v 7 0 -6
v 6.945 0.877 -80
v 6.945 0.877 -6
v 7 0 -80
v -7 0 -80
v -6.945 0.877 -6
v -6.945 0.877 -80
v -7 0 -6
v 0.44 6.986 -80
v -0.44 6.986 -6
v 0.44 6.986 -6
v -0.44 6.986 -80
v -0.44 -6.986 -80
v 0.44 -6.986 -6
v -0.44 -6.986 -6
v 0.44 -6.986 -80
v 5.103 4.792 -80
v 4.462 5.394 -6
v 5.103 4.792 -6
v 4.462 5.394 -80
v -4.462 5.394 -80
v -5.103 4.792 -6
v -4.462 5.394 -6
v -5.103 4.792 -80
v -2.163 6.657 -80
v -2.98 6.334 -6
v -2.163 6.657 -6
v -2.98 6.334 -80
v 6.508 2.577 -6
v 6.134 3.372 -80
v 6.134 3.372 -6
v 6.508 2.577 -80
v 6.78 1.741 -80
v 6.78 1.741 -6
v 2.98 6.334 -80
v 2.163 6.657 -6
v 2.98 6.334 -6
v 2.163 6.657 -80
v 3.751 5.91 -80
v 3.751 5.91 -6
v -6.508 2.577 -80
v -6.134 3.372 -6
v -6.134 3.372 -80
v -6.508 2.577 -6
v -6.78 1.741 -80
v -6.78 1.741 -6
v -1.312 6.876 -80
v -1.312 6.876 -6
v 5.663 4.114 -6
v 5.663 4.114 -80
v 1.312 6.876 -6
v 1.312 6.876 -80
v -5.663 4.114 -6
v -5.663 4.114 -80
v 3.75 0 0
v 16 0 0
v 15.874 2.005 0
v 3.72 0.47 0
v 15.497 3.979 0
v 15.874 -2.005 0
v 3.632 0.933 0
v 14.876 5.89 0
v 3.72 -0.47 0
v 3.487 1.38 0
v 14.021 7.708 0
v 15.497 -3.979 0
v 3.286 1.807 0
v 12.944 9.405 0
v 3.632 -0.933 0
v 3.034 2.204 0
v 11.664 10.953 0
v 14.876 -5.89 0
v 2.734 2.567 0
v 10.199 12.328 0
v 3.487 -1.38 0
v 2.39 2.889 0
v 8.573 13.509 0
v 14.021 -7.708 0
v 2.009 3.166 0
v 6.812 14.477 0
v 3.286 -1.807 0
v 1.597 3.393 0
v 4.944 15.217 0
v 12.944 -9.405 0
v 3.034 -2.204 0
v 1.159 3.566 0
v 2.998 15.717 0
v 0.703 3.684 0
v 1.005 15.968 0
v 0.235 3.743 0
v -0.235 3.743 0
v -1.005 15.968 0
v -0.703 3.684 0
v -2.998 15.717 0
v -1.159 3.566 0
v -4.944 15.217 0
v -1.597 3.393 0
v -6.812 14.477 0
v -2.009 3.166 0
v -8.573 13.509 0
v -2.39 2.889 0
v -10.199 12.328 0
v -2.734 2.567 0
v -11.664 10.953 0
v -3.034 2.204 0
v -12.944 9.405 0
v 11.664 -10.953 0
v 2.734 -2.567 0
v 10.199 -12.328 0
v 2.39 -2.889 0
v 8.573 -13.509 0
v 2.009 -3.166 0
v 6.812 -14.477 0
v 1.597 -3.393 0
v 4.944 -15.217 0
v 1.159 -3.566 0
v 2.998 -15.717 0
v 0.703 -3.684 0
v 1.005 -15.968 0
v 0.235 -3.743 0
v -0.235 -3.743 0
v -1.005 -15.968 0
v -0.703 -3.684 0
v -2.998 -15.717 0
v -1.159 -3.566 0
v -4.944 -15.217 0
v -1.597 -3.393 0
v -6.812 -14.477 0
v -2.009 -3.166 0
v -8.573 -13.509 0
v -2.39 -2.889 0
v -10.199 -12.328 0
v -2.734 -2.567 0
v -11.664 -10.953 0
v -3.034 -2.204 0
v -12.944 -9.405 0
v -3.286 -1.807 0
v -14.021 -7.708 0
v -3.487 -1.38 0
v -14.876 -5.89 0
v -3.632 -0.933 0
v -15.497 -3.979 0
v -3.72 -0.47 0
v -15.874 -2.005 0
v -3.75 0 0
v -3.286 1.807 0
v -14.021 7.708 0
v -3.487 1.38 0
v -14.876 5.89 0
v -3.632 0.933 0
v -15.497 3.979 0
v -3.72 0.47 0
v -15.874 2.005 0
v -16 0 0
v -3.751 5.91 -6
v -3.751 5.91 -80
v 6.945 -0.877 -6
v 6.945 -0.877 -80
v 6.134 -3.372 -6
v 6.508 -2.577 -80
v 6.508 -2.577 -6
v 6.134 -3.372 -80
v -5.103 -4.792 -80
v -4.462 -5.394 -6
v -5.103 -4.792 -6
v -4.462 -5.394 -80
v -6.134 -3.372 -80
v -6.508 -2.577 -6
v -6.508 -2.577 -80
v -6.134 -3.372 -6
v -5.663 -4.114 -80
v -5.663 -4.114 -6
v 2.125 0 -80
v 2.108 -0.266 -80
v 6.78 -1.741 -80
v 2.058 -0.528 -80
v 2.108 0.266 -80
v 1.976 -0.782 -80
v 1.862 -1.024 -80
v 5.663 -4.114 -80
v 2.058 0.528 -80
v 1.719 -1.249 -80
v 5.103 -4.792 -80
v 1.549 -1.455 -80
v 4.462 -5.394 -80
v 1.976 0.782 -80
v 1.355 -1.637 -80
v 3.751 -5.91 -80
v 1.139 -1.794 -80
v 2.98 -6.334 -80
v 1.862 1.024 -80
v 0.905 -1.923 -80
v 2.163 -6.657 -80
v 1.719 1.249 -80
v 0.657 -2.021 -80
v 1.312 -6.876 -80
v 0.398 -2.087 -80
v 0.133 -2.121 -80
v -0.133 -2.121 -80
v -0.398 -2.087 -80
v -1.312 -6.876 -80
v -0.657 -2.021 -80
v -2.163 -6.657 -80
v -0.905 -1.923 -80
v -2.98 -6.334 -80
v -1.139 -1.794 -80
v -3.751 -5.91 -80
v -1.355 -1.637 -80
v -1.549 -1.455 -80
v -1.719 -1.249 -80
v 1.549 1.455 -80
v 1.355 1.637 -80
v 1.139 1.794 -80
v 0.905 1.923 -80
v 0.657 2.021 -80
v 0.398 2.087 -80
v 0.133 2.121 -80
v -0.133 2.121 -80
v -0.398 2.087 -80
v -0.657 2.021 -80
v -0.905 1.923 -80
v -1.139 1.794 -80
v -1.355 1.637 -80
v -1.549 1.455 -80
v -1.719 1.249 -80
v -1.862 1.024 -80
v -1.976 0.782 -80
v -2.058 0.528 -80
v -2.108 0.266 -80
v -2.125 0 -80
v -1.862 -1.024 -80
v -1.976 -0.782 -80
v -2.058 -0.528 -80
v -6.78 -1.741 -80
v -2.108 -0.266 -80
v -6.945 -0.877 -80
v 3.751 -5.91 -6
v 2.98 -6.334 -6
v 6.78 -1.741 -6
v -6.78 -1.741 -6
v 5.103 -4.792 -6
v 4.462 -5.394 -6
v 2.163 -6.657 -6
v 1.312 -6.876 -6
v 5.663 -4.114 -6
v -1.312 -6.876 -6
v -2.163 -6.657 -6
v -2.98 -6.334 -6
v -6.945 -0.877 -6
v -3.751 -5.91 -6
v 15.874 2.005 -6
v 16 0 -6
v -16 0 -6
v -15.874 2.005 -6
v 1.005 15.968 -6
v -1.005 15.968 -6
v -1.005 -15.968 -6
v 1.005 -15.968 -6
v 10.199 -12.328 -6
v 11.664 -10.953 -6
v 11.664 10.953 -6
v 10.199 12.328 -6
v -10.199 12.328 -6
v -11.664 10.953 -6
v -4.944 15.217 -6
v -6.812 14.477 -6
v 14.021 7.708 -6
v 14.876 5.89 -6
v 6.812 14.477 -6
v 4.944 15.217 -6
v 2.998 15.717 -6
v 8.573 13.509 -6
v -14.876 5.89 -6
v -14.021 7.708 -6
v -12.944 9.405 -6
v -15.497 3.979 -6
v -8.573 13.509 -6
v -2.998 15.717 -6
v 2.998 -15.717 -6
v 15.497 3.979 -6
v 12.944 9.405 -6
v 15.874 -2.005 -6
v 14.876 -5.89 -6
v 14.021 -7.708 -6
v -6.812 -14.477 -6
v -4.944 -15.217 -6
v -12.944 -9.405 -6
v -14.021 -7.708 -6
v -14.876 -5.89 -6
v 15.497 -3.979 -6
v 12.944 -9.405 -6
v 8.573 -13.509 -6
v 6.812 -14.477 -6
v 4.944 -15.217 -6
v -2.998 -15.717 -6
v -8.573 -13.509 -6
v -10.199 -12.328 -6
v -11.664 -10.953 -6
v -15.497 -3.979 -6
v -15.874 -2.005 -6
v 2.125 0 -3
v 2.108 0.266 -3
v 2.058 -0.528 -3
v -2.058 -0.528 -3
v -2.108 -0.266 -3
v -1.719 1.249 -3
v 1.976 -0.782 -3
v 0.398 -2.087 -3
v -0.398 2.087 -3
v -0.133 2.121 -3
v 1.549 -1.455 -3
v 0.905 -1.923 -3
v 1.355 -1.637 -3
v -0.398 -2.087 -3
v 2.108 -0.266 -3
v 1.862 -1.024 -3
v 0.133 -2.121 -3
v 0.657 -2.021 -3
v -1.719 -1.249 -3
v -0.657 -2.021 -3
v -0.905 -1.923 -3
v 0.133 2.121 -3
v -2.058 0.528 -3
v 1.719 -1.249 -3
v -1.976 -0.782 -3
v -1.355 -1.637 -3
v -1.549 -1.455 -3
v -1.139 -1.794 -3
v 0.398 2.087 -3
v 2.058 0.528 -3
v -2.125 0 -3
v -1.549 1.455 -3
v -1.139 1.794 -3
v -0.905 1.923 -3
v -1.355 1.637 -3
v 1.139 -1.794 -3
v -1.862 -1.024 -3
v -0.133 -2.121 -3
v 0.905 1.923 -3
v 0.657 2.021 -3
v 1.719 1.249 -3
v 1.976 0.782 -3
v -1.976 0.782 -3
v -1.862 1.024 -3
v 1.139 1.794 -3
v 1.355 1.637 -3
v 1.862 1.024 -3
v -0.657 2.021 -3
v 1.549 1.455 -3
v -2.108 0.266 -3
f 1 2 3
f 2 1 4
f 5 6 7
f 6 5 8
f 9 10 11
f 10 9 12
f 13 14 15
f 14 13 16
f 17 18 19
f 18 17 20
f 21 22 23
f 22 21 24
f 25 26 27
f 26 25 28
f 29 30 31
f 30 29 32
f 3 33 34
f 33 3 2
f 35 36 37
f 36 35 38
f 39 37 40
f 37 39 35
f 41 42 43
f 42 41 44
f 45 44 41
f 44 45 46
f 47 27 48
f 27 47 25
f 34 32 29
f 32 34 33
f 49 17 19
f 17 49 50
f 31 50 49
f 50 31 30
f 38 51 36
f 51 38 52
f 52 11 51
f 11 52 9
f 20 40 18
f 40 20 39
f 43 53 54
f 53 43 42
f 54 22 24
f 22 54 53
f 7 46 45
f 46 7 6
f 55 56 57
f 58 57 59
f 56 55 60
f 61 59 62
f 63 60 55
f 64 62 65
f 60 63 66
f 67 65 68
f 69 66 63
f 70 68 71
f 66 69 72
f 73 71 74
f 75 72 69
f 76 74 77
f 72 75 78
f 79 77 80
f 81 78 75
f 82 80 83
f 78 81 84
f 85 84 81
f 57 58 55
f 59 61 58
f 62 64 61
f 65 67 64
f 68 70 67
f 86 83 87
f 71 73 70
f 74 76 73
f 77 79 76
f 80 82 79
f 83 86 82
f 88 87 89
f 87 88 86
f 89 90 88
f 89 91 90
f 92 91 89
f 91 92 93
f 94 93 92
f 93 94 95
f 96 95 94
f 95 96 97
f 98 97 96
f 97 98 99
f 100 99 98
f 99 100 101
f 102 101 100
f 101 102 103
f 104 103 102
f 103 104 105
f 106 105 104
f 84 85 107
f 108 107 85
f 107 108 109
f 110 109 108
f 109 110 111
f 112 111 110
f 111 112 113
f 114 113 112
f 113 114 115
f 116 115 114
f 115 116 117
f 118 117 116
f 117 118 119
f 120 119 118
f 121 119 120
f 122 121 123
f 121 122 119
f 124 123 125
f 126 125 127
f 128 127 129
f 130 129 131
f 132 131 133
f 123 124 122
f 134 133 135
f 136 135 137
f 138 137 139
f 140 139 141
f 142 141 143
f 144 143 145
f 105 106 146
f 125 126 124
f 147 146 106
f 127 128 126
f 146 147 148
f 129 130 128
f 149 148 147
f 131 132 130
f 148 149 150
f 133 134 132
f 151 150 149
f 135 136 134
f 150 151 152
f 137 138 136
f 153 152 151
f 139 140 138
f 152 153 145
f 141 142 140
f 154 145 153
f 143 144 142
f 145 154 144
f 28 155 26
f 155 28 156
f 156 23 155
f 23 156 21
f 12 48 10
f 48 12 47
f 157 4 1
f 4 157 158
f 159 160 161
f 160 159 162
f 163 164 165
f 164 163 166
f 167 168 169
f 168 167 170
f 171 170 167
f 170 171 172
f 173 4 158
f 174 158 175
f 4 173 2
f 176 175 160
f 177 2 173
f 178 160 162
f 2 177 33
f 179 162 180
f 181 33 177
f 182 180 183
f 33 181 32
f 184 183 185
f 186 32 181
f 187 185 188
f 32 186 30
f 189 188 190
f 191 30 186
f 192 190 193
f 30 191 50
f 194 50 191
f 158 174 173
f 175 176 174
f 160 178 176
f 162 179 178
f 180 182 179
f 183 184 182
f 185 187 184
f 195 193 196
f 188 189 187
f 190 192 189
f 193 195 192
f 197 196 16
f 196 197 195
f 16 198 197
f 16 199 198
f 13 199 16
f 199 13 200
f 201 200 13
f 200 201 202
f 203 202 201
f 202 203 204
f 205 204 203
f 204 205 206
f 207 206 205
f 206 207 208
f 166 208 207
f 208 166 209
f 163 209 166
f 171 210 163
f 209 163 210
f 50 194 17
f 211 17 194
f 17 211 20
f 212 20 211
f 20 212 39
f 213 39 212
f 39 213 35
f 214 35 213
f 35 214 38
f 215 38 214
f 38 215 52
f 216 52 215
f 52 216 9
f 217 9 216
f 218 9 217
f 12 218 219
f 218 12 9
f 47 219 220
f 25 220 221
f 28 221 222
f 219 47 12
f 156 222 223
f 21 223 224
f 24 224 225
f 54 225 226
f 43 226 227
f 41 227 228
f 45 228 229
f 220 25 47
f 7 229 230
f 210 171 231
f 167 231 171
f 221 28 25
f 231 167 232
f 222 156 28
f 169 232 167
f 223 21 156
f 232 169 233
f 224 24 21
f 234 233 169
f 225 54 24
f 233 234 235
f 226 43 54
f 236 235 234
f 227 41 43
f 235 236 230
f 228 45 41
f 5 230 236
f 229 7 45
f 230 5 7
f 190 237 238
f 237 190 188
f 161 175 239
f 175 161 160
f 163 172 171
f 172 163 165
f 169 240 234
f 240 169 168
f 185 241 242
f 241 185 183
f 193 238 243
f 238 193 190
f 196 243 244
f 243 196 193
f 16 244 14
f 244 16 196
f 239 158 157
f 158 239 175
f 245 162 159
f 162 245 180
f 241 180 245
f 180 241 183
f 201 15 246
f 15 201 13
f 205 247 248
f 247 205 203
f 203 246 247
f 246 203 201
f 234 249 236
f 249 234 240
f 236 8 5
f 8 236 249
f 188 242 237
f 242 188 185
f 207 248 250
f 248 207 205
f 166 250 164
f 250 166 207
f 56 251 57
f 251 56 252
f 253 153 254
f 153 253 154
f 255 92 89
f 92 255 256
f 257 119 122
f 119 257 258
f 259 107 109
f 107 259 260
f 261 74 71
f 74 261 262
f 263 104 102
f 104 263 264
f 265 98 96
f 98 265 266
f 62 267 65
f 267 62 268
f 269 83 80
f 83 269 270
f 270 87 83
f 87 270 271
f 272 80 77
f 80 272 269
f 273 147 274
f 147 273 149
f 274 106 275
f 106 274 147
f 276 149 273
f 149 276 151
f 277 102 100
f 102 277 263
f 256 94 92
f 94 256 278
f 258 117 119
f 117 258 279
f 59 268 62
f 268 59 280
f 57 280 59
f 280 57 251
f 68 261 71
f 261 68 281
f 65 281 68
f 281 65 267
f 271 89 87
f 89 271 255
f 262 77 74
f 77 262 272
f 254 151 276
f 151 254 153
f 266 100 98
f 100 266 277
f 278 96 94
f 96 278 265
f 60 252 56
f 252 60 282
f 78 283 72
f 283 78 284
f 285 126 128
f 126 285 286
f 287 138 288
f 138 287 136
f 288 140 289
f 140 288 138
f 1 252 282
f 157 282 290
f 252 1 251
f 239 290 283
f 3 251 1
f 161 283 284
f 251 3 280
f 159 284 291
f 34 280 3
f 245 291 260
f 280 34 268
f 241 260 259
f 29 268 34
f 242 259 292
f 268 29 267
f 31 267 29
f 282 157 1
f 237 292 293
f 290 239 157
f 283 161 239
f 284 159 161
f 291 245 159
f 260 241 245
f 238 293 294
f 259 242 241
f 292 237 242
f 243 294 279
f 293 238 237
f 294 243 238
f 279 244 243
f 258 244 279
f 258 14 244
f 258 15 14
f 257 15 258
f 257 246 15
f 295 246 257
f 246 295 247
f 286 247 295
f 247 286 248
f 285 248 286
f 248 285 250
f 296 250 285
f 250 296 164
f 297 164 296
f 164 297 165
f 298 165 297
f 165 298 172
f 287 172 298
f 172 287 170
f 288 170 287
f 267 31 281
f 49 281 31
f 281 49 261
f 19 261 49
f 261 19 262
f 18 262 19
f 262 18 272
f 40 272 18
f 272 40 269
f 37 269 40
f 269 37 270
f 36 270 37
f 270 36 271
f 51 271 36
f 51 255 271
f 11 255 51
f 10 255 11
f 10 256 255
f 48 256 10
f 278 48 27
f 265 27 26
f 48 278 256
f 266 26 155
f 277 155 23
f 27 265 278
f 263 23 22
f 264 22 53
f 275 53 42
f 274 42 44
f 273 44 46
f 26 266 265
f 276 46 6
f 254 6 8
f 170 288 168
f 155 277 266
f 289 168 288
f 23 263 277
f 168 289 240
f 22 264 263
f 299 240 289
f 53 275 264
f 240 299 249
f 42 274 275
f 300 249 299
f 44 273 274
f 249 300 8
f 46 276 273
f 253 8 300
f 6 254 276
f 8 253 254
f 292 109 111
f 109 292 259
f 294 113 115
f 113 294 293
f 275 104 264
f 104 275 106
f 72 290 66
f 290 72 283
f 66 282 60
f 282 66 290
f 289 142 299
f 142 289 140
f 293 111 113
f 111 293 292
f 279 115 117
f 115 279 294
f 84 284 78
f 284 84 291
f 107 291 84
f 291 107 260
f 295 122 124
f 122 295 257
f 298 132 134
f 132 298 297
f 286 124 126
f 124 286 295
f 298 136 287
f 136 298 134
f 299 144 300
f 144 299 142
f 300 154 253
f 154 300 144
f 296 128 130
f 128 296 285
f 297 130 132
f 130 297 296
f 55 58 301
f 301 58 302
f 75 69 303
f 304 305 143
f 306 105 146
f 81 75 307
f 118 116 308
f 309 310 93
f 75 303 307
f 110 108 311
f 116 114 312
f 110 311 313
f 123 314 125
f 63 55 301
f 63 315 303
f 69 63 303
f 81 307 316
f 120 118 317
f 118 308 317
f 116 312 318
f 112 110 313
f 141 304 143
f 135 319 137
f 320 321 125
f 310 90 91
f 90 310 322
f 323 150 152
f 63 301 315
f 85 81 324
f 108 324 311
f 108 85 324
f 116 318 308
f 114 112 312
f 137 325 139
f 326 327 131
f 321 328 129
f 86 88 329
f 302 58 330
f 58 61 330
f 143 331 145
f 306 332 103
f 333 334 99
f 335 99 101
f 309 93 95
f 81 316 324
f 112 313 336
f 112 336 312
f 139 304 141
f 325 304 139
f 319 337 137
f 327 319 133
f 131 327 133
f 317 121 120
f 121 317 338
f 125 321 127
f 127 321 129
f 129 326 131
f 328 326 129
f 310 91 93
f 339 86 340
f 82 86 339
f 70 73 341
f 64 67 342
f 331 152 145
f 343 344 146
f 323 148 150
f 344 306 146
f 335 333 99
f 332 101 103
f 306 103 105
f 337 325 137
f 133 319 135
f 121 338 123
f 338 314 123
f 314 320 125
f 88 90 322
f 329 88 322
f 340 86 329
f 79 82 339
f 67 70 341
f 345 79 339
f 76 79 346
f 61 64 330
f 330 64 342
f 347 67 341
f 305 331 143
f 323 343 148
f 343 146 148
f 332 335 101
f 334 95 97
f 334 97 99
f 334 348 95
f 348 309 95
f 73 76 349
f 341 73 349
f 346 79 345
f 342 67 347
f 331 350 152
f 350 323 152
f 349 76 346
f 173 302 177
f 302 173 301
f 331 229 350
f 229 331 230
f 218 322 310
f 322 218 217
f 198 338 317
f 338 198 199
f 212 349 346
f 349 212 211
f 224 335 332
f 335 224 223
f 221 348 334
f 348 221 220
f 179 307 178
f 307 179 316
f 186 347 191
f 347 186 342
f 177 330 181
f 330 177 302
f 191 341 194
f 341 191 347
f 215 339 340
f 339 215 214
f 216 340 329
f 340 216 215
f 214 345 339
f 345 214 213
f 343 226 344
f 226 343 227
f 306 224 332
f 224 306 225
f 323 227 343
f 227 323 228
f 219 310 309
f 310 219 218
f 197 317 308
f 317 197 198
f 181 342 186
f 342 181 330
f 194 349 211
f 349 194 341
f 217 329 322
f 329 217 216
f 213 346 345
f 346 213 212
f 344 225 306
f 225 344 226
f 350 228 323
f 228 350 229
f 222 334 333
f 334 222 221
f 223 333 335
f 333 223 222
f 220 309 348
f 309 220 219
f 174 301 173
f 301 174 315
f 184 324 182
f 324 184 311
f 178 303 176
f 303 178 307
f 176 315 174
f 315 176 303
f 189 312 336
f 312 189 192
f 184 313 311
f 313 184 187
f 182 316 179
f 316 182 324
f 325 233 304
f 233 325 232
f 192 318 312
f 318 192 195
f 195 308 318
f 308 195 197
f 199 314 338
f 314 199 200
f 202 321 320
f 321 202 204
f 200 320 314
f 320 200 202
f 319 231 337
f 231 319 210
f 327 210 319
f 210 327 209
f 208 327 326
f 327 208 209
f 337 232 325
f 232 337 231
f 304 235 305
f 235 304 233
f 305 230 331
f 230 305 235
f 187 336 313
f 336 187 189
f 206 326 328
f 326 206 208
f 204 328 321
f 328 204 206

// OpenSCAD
$fn = 50;


difference() {
	union() {
		translate(v = [0, 0, -80.0000000000]) {
			cylinder(h = 80, r = 7.0000000000);
		}
		translate(v = [0, 0, -6.0000000000]) {
			cylinder(h = 6, r = 16.0000000000);
		}
	}
	union() {
		translate(v = [0, 0, 0]) {
			rotate(a = [0, 0, 0]) {
				difference() {
					union() {
						#translate(v = [0, 0, -80.0000000000]) {
							cylinder(h = 80, r = 2.0000000000);
						}
						#translate(v = [0, 0, -3]) {
							cylinder(h = 3, r = 7.0000000000, r1 = 2.1250000000, r2 = 3.7500000000);
						}
						#translate(v = [0, 0, -80.0000000000]) {
							cylinder(h = 80, r = 2.1250000000);
						}
						#translate(v = [0, 0, -80.0000000000]) {
							cylinder(h = 80, r = 2.0000000000);
						}
					}
					union();
				}
			}
		}
	}
}
